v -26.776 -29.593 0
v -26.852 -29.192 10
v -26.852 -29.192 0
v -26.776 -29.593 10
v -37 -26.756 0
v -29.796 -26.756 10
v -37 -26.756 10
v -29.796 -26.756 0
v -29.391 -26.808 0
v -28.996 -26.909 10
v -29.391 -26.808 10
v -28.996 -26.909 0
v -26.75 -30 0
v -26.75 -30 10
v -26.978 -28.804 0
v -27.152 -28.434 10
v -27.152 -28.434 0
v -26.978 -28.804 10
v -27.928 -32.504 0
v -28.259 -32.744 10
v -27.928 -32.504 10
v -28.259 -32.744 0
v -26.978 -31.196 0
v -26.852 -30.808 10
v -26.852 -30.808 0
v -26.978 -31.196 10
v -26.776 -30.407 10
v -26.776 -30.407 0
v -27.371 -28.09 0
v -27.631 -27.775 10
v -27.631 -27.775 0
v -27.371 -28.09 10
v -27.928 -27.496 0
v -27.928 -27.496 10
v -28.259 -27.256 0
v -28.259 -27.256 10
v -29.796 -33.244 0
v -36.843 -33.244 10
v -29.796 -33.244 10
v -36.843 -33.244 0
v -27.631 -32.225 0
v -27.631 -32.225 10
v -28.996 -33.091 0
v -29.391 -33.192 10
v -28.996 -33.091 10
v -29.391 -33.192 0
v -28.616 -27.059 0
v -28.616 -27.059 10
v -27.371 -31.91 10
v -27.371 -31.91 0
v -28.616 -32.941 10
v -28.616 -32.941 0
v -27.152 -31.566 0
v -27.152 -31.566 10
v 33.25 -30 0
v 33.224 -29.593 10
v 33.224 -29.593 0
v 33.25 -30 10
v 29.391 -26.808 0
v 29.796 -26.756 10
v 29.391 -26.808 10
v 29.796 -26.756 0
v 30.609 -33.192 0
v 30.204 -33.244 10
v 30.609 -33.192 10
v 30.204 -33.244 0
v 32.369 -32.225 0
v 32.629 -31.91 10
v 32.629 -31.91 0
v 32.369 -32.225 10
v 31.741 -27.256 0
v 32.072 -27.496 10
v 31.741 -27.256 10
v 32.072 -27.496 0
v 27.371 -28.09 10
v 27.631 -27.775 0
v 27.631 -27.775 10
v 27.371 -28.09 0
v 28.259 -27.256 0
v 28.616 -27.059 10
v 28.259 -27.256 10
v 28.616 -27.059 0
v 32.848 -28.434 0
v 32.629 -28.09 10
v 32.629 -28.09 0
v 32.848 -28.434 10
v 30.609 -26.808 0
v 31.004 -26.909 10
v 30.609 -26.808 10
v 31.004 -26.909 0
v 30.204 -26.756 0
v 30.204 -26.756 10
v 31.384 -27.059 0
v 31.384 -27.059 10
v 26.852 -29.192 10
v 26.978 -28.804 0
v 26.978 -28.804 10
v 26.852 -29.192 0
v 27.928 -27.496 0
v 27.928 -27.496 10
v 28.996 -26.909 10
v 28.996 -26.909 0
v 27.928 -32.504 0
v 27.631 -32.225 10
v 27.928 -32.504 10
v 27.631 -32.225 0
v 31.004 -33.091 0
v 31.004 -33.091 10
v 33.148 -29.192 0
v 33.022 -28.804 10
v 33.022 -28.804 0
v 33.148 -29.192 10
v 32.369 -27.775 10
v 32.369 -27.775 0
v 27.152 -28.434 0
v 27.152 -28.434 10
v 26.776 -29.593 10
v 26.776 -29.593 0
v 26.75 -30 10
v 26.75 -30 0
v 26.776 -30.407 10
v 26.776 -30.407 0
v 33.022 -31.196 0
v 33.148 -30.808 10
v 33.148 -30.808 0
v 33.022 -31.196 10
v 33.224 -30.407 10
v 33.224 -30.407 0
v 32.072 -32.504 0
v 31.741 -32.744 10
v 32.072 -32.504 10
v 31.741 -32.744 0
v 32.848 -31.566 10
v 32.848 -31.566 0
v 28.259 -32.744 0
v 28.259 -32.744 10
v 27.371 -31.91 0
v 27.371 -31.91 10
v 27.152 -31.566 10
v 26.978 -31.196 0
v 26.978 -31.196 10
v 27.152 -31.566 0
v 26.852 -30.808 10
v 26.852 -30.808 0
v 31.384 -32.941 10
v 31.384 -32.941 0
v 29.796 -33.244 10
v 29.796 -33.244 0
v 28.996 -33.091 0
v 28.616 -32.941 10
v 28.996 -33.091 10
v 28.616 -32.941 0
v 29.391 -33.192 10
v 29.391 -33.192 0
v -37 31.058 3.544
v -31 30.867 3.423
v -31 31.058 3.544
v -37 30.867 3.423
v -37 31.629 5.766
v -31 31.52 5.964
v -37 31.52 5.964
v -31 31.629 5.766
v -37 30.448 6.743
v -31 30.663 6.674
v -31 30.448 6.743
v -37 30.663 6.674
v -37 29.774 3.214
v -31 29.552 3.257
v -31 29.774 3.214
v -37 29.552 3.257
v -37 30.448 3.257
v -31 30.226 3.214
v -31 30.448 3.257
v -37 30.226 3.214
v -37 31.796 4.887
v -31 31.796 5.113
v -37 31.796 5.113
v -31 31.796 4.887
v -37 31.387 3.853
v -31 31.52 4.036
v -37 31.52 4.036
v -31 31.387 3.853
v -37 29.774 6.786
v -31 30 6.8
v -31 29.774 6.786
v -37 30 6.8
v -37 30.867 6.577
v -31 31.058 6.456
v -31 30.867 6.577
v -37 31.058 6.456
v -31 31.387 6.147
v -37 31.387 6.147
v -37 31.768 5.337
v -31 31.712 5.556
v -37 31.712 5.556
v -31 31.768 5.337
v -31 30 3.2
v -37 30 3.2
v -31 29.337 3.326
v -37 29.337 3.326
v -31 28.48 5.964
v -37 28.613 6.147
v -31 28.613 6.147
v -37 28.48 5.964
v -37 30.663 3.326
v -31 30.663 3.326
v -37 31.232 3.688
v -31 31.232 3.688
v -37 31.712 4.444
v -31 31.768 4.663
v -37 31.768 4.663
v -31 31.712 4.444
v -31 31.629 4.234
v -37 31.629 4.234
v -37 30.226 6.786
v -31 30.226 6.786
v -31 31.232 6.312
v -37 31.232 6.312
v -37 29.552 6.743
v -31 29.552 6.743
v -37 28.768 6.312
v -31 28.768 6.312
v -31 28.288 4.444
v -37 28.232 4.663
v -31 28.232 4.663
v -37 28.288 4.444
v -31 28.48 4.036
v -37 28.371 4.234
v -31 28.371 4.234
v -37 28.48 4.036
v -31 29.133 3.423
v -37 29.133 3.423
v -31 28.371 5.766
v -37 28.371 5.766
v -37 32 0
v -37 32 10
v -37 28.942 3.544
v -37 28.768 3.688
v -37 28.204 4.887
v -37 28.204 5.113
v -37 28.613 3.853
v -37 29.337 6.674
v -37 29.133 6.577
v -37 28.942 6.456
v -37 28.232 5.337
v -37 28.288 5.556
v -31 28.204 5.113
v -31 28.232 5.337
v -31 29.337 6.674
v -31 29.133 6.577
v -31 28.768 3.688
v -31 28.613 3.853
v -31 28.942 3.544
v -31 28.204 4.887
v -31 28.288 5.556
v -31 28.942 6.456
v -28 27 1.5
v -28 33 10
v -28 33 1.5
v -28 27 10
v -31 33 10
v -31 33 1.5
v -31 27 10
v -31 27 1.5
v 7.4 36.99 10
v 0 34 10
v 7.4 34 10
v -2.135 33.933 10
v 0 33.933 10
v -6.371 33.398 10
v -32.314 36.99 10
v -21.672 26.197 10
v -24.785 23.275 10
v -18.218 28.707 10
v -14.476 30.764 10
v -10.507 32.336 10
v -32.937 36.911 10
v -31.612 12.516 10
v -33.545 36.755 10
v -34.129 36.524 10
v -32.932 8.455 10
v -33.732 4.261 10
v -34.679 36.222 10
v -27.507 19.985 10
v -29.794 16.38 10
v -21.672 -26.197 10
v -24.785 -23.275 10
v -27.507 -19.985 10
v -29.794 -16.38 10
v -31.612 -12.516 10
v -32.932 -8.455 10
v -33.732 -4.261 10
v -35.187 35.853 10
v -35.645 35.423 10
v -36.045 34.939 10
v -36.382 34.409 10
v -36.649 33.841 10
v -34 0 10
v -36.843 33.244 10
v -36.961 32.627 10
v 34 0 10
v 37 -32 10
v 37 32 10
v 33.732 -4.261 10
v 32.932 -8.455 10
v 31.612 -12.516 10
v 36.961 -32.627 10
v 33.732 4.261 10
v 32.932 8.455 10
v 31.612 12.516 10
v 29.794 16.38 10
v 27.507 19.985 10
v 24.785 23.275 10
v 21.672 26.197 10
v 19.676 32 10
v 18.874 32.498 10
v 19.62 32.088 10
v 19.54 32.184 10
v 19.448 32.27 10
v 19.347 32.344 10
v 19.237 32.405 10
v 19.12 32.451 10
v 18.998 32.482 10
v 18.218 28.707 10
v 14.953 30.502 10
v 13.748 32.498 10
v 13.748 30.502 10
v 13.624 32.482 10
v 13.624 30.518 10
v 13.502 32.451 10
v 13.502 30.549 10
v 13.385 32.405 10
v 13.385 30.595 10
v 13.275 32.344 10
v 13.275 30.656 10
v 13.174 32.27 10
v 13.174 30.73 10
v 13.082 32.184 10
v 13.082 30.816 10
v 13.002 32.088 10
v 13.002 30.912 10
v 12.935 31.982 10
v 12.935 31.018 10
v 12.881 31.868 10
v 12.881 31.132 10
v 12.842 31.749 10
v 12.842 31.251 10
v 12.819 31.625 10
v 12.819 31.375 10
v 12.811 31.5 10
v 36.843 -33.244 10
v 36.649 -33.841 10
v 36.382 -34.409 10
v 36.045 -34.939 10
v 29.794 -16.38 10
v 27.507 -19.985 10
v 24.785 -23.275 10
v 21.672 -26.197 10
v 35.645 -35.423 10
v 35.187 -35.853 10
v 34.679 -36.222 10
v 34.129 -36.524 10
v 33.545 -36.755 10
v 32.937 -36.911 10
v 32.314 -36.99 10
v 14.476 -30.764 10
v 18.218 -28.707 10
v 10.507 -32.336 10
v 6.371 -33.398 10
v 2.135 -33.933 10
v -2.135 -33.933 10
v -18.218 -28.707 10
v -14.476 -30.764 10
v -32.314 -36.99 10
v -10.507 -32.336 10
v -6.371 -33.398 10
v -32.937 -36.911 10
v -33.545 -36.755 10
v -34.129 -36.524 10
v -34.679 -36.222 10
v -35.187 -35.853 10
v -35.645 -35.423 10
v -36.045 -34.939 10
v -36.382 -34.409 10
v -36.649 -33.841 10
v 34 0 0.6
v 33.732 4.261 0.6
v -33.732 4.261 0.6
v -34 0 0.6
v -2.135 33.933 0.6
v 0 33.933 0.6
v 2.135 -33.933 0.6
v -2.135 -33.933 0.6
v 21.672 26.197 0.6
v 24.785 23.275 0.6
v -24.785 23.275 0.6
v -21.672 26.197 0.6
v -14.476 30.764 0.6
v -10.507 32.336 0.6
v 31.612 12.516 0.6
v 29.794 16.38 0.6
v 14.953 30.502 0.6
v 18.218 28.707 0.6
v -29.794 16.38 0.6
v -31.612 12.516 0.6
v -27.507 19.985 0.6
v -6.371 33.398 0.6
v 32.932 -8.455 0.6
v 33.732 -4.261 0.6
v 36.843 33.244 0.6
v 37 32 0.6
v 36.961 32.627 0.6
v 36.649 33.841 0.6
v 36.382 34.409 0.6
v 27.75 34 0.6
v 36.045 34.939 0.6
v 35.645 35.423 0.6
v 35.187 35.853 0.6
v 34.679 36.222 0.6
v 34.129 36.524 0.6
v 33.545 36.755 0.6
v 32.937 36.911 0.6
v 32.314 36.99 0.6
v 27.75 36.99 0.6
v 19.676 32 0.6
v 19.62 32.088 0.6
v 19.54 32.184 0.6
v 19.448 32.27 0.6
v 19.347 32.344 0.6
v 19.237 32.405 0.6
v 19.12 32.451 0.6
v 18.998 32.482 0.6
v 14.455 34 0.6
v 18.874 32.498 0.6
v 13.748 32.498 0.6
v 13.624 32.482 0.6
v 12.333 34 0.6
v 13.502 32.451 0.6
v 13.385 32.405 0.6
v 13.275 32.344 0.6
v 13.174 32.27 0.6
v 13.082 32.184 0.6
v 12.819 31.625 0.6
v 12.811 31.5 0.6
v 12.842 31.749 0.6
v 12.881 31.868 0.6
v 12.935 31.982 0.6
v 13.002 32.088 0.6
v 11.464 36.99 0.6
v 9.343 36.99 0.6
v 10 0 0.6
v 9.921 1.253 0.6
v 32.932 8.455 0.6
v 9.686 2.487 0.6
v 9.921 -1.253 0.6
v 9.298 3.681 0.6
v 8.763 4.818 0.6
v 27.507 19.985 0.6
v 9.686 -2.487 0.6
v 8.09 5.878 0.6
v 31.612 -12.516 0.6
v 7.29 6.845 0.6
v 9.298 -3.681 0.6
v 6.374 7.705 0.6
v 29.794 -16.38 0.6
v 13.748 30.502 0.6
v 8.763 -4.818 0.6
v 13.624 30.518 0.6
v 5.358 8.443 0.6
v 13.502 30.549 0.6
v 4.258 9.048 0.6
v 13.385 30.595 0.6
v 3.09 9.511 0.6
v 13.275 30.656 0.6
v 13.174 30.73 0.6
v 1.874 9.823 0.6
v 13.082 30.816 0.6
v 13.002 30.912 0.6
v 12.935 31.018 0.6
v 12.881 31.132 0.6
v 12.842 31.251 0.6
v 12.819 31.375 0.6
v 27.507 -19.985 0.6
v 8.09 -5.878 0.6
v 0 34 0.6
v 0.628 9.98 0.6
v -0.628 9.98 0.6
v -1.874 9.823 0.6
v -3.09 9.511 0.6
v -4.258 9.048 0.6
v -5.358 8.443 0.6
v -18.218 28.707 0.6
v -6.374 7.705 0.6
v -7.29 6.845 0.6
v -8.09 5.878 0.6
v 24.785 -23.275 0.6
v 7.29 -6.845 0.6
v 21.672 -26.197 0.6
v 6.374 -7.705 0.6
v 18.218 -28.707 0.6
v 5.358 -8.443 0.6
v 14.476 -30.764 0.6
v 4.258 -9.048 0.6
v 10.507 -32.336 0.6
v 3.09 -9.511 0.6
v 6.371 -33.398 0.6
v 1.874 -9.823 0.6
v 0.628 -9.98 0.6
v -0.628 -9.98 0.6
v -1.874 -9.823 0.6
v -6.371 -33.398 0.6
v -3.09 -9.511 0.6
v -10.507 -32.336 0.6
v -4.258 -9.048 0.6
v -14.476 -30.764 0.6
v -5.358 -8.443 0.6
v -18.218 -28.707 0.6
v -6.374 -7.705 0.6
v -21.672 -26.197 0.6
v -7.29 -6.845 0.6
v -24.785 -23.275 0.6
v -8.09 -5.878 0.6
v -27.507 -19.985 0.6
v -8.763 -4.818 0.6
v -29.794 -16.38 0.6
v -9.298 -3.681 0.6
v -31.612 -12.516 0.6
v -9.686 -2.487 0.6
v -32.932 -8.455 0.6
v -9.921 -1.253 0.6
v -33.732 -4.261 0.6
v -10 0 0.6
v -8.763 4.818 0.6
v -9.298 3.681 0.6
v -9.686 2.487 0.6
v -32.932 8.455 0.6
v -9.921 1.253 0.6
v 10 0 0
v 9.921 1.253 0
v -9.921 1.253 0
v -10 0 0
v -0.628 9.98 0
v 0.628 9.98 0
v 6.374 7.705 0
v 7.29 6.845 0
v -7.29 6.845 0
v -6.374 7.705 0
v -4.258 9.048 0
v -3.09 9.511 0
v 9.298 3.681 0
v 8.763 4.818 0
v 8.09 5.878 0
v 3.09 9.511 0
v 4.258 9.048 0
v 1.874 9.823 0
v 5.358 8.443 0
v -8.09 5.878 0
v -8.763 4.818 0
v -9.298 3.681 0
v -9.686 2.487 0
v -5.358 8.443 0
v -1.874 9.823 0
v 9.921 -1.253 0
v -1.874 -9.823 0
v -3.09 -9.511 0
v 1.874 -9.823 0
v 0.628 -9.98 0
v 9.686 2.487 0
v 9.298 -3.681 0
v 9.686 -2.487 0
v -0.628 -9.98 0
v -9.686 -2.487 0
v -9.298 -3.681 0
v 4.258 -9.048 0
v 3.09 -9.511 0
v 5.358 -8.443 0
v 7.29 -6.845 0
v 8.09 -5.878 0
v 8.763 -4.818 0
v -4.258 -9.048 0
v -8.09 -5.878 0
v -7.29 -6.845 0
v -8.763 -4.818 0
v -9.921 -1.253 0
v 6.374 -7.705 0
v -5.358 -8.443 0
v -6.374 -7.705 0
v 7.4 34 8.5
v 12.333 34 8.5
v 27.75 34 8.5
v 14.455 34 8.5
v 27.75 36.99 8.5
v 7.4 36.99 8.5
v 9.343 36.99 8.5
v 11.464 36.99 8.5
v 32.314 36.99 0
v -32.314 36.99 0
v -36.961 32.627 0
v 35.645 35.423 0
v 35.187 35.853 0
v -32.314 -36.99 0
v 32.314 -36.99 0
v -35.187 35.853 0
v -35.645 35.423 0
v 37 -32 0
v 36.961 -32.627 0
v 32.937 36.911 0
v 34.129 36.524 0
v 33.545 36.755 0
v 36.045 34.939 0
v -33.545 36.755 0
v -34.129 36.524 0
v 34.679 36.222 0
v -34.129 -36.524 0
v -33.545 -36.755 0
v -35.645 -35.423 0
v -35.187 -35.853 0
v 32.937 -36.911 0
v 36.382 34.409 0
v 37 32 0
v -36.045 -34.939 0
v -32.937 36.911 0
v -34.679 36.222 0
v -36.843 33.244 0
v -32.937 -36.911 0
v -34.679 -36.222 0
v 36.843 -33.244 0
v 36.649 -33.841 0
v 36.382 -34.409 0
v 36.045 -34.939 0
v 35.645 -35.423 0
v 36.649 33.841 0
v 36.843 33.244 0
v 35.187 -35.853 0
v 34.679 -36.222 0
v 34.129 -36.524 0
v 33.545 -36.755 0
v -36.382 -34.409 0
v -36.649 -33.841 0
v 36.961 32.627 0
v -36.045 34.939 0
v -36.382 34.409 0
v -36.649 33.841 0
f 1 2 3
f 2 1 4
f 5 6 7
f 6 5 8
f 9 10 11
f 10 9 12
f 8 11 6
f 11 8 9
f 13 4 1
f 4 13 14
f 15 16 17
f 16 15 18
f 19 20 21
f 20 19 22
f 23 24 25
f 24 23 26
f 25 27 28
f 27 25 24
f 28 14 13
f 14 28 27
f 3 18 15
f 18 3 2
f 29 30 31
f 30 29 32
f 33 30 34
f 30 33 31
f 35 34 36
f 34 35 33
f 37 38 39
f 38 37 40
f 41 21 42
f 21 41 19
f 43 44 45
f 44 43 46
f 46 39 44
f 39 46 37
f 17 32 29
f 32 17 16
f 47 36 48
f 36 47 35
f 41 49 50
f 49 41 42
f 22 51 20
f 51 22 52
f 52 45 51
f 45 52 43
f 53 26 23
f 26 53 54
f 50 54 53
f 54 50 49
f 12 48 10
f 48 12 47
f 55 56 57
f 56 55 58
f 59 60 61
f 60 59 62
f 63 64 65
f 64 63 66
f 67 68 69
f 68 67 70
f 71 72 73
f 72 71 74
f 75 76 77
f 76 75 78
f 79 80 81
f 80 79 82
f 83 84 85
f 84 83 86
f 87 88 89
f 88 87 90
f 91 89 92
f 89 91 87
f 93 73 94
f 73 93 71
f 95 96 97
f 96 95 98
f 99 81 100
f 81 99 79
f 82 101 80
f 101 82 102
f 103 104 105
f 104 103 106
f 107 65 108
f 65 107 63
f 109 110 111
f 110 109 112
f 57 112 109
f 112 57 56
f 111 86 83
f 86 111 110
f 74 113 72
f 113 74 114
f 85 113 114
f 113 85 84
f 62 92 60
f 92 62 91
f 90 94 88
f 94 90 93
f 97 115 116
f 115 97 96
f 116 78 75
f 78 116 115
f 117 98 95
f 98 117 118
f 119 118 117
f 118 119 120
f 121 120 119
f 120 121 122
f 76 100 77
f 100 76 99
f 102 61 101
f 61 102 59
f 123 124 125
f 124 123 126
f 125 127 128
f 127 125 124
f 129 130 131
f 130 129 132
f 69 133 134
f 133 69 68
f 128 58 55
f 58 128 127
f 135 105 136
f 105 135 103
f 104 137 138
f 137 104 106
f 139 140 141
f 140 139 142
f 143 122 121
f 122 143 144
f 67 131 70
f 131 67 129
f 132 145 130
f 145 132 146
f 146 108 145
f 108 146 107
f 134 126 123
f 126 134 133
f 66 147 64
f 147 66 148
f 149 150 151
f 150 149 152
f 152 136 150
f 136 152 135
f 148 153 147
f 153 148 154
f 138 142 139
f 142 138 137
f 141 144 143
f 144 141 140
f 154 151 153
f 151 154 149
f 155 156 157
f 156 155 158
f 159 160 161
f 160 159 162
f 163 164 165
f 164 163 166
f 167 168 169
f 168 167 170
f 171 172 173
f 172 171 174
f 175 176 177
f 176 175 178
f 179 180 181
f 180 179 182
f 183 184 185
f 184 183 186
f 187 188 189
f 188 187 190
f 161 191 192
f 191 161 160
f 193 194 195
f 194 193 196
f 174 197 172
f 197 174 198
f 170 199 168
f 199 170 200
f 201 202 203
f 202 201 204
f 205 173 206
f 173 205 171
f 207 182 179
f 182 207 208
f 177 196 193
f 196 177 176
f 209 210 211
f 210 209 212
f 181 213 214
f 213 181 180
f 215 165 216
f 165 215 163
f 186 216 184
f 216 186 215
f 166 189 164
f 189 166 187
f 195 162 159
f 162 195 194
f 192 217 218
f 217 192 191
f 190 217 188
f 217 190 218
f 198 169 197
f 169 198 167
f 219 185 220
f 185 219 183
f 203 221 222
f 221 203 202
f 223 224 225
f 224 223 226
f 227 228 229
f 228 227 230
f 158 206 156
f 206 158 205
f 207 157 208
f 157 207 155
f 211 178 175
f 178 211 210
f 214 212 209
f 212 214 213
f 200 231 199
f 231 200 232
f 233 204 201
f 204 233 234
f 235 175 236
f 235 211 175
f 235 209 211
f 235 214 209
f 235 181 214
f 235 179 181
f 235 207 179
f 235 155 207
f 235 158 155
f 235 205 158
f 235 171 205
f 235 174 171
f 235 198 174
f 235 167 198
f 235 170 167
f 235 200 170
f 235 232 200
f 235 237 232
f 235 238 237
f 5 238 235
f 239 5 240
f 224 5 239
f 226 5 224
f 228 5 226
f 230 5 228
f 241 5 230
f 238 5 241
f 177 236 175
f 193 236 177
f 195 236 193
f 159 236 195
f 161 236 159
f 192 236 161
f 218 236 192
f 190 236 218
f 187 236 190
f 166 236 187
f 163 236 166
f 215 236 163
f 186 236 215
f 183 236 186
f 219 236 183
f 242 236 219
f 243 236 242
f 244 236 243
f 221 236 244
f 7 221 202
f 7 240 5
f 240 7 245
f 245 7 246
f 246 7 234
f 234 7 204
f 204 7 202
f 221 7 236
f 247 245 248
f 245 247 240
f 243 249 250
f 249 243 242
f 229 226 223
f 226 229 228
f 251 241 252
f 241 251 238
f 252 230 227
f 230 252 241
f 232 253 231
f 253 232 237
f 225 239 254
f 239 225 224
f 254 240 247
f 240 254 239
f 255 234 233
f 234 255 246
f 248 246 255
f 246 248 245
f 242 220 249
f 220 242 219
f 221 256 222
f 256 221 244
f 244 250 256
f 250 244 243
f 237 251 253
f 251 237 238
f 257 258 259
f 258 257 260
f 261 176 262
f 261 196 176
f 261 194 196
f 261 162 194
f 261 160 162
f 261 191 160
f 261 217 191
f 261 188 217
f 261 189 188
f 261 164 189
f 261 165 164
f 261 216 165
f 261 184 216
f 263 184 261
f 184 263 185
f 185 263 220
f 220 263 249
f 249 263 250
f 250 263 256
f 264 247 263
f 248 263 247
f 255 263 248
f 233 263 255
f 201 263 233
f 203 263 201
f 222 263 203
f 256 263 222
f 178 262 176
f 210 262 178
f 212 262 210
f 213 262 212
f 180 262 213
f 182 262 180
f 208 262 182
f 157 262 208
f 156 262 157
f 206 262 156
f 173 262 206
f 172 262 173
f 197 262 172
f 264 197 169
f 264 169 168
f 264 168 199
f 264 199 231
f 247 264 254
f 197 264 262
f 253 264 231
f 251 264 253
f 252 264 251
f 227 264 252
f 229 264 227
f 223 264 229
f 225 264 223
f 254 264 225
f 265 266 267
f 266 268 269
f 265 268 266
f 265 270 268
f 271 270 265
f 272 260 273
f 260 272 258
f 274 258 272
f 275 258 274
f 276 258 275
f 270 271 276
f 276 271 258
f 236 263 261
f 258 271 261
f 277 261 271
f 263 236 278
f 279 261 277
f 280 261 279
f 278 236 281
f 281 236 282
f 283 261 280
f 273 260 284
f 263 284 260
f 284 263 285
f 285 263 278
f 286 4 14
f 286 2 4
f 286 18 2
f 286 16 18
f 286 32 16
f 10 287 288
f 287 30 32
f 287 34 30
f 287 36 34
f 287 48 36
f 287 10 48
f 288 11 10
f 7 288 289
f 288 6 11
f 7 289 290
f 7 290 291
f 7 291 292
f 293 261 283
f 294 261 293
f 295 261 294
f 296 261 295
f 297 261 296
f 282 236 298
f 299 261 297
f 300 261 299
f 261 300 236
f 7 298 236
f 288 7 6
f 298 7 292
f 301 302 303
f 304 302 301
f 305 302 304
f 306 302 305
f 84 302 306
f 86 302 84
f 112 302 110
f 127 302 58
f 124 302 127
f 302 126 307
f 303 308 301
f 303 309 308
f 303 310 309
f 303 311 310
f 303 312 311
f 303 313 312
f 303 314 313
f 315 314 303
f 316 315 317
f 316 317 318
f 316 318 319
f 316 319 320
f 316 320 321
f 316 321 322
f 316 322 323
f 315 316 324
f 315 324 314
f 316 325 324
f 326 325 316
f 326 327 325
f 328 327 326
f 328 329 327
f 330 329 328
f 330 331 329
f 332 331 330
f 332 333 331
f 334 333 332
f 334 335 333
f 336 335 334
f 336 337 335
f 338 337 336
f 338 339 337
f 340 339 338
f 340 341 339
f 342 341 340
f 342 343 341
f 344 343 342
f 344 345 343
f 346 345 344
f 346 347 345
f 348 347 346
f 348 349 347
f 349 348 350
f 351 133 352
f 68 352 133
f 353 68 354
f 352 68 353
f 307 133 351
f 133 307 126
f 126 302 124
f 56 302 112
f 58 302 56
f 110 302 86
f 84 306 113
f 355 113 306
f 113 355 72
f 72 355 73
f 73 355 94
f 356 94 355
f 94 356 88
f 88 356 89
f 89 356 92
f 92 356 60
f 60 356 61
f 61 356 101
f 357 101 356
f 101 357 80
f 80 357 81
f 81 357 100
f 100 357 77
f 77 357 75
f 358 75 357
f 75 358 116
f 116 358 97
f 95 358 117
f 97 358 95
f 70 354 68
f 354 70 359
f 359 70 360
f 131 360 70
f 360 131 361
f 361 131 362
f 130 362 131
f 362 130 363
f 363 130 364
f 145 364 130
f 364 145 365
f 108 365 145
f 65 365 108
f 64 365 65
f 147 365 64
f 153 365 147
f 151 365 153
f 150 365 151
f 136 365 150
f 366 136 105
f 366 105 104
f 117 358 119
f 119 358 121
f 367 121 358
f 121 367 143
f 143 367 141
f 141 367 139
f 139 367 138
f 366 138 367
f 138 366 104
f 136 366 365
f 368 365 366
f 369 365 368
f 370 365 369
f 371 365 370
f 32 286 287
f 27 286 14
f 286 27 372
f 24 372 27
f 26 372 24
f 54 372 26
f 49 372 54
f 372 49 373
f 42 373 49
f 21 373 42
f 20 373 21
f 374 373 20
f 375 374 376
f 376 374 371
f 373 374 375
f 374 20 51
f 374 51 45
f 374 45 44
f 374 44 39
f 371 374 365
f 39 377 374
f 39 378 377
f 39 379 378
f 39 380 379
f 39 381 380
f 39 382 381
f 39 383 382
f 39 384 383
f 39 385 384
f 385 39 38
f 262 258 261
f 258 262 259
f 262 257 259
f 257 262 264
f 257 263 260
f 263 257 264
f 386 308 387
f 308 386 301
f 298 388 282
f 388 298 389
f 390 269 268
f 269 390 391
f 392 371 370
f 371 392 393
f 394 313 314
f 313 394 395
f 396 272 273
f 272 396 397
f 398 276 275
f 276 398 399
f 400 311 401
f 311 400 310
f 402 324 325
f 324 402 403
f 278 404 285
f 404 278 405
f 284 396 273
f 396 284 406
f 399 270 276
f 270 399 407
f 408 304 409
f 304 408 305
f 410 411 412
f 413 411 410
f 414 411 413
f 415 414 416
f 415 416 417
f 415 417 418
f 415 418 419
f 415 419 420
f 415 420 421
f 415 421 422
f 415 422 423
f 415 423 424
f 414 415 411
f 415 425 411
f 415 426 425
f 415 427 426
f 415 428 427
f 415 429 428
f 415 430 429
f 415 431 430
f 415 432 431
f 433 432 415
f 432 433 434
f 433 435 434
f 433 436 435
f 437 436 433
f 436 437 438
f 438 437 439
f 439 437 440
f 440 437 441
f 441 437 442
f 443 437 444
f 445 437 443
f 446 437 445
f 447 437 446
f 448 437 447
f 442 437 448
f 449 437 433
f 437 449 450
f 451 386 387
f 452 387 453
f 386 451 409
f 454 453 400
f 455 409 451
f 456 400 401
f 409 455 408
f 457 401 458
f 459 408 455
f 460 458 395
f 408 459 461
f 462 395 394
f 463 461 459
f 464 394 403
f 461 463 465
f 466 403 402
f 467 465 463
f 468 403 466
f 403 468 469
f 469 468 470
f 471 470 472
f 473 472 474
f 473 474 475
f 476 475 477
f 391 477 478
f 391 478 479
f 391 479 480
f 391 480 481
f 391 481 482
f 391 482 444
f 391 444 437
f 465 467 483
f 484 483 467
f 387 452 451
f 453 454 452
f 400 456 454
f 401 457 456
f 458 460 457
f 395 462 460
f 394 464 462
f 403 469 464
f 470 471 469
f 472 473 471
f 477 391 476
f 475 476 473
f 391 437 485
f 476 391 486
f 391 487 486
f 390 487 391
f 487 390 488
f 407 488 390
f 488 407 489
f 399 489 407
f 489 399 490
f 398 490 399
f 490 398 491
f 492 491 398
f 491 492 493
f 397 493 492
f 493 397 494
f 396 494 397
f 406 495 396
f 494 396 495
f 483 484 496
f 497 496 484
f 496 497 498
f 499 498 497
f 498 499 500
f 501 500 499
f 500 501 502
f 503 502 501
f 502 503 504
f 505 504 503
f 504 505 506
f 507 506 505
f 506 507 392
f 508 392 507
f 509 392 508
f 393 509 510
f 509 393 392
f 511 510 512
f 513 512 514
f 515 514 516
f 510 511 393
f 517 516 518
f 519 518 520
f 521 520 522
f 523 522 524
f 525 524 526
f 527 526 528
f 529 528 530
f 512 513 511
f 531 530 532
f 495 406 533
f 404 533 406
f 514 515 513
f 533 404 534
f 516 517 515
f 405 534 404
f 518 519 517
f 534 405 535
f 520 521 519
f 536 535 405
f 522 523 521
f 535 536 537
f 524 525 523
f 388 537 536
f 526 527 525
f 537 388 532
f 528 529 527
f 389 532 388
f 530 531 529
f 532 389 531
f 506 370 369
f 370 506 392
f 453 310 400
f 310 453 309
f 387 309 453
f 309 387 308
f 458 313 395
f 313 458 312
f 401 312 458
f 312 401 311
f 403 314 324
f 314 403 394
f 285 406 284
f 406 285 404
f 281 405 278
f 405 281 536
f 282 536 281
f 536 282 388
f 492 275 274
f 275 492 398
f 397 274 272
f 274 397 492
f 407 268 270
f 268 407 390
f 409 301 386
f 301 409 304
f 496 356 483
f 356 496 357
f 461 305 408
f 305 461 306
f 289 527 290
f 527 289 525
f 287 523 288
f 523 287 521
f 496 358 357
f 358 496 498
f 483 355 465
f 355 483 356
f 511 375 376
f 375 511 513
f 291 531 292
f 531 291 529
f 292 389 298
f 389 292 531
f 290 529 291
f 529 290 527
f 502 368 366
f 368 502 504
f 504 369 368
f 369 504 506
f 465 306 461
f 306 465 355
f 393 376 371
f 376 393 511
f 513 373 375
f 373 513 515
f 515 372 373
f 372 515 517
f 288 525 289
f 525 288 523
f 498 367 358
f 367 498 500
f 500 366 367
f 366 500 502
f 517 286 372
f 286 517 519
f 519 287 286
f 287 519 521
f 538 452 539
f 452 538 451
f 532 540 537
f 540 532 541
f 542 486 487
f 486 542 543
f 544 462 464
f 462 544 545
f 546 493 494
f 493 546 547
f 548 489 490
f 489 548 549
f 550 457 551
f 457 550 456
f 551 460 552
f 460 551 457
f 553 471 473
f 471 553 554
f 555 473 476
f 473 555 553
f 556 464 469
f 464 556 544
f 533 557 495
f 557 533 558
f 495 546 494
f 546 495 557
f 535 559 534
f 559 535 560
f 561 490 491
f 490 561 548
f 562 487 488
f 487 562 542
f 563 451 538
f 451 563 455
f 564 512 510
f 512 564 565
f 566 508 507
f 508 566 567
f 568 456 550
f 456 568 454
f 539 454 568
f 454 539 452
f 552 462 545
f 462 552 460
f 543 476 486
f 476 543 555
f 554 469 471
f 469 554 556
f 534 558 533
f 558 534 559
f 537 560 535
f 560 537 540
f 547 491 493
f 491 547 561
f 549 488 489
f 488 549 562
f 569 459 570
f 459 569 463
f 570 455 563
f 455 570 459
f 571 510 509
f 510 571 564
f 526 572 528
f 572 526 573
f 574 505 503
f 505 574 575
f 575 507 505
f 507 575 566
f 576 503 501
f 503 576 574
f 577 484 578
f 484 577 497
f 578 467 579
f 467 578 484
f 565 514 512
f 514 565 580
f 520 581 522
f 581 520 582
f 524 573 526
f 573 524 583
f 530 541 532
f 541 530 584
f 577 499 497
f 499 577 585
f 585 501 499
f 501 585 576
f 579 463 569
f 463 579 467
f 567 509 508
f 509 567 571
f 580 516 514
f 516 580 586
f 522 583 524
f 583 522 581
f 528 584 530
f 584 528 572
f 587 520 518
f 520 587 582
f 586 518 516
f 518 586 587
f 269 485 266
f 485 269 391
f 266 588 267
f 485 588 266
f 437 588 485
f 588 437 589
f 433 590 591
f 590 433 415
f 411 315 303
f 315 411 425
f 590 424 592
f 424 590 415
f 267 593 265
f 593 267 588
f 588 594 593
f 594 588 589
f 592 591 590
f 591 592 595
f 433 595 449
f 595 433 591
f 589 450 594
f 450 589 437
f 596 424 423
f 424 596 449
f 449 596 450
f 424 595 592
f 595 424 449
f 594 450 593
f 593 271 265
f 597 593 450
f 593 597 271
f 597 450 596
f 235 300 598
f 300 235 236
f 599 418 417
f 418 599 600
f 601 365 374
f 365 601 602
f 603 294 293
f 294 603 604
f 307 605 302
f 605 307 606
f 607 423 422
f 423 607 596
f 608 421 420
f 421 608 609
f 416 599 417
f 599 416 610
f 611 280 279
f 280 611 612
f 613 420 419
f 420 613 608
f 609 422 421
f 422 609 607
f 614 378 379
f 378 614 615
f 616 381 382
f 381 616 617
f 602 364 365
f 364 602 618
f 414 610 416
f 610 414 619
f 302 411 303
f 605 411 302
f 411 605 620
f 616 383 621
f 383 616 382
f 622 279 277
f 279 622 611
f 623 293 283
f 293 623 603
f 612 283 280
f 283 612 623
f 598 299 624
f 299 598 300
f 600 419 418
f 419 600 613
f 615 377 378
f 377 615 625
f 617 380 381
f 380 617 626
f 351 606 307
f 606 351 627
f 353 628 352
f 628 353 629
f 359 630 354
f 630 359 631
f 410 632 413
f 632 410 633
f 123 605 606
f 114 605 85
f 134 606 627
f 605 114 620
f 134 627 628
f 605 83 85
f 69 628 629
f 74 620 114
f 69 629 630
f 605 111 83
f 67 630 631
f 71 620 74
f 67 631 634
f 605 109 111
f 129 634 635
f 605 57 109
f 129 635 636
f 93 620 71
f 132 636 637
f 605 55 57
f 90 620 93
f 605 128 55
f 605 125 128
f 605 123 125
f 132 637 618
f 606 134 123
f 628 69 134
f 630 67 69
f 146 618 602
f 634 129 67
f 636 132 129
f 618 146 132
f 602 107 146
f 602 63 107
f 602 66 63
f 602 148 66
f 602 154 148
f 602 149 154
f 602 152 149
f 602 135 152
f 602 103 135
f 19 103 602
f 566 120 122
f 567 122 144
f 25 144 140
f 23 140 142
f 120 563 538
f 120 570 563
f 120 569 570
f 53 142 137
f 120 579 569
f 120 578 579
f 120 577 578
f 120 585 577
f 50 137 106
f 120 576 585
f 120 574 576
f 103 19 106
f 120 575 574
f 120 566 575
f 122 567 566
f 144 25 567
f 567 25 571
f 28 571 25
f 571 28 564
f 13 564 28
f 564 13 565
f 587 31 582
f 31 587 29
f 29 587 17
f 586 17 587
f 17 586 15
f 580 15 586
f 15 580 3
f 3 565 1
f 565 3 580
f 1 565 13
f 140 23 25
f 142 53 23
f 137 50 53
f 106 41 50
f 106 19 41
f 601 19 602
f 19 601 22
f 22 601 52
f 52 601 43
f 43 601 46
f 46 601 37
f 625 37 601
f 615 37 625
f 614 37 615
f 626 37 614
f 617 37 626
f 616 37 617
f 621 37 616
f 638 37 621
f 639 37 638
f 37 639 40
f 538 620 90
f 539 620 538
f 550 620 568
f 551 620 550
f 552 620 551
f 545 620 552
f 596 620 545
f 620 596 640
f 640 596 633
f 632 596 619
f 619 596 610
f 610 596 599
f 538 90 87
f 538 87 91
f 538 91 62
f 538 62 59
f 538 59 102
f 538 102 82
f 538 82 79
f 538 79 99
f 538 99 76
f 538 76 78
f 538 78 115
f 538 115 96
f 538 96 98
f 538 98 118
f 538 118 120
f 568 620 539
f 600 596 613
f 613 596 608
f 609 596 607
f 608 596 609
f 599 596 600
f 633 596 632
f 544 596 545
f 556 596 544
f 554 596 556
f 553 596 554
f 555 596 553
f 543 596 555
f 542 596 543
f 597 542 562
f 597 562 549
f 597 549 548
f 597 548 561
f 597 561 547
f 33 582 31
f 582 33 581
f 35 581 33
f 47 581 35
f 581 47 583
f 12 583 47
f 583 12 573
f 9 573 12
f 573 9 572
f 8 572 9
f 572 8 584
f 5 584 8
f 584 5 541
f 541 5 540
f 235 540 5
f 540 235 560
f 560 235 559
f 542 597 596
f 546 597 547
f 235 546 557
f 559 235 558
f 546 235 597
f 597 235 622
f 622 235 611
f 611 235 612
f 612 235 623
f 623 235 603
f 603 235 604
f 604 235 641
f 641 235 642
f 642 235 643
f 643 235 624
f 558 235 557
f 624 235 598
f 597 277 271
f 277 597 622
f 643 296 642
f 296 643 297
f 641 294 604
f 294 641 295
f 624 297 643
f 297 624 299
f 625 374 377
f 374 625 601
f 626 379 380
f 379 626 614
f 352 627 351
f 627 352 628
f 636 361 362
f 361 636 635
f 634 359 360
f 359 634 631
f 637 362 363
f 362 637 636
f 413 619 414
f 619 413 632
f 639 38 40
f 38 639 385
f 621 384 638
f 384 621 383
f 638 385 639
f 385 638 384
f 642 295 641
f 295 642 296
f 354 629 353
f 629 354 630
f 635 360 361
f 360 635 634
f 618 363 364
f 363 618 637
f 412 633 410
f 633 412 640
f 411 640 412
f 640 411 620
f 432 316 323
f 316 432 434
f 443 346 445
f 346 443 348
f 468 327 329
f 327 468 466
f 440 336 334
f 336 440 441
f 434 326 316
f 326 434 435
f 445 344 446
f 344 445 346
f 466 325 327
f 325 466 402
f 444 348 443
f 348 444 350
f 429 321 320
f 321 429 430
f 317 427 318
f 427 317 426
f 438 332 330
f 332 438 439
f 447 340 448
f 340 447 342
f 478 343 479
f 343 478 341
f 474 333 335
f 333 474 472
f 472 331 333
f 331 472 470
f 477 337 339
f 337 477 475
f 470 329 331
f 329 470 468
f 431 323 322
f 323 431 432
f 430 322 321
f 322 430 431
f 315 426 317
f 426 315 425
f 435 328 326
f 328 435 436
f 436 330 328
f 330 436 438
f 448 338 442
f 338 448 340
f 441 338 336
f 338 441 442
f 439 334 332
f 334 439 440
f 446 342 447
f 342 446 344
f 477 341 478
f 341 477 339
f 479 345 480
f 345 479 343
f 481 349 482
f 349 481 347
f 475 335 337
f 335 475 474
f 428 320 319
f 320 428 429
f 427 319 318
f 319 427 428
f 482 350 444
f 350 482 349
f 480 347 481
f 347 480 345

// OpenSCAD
$fn = 50;


union() {
	difference() {
		union() {
			translate(v = [0, 0, 0]) {
				rotate(a = [0, 0, 0]) {
					hull() {
						translate(v = [-32.0000000000, 32.0000000000, 0]) {
							rotate(a = [0, 0, 0]) {
								translate(v = [0, 0, 0]) {
									rotate(a = [0, 0, 0]) {
										cylinder(h = 10, r = 5);
									}
								}
							}
						}
						translate(v = [32.0000000000, 32.0000000000, 0]) {
							rotate(a = [0, 0, 0]) {
								translate(v = [0, 0, 0]) {
									rotate(a = [0, 0, 0]) {
										cylinder(h = 10, r = 5);
									}
								}
							}
						}
						translate(v = [-32.0000000000, -32.0000000000, 0]) {
							rotate(a = [0, 0, 0]) {
								translate(v = [0, 0, 0]) {
									rotate(a = [0, 0, 0]) {
										cylinder(h = 10, r = 5);
									}
								}
							}
						}
						translate(v = [32.0000000000, -32.0000000000, 0]) {
							rotate(a = [0, 0, 0]) {
								translate(v = [0, 0, 0]) {
									rotate(a = [0, 0, 0]) {
										cylinder(h = 10, r = 5);
									}
								}
							}
						}
					}
				}
			}
		}
		union() {
			translate(v = [-37.5000000000, -30.0000000000, -125]) {
				rotate(a = [0, 0, 0]) {
					hull() {
						translate(v = [7.5000000000, 0, 0]) {
							rotate(a = [0, 0, 0]) {
								translate(v = [0, 0, 0]) {
									rotate(a = [0, 0, 0]) {
										cylinder(h = 250, r = 3.2500000000);
									}
								}
							}
						}
						translate(v = [-7.5000000000, 0, 0]) {
							rotate(a = [0, 0, 0]) {
								translate(v = [0, 0, 0]) {
									rotate(a = [0, 0, 0]) {
										cylinder(h = 250, r = 3.2500000000);
									}
								}
							}
						}
					}
				}
			}
			translate(v = [30.0000000000, -30.0000000000, -125.0000000000]) {
				rotate(a = [0, 0, 0]) {
					cylinder(h = 250, r = 3.2500000000);
				}
			}
			translate(v = [-37.0000000000, 30.0000000000, 5.0000000000]) {
				rotate(a = [0, 90, 0]) {
					cylinder(h = 9, r = 1.8000000000);
				}
			}
			translate(v = [-31.0000000000, 27.0000000000, 1.5000000000]) {
				rotate(a = [0, 0, 0]) {
					cube(size = [3, 6, 8.5000000000]);
				}
			}
			translate(v = [0, 0, 0.6000000000]) {
				rotate(a = [0, 0, 0]) {
					cylinder(h = 12.4000000000, r = 34.0000000000);
				}
			}
			translate(v = [0, 0, -5.0000000000]) {
				rotate(a = [0, 0, 0]) {
					cylinder(h = 10, r = 10.0000000000);
				}
			}
			translate(v = [0.0000000000, 32.0000000000, 0.6000000000]) {
				rotate(a = [0, 0, 0]) {
					cube(size = [37.0000000000, 2, 12.4000000000]);
				}
			}
			translate(v = [27.7500000000, 32.0000000000, 0.6000000000]) {
				rotate(a = [0, 0, 0]) {
					cube(size = [9.2500000000, 5, 12.4000000000]);
				}
			}
			translate(v = [7.4000000000, 32.0000000000, 8.5000000000]) {
				rotate(a = [0, 0, 0]) {
					cube(size = [29.6000000000, 5, 1.5000000000]);
				}
			}
			translate(v = [8.5833333333, 37.7500000000, 0.6000000000]) {
				rotate(a = [0, 0, -45]) {
					cube(size = [7.5000000000, 1.5000000000, 12.4000000000]);
				}
			}
			translate(v = [7.0610000000, 30.5000000000, 0.6000000000]) {
				rotate(a = [0, 0, 0]) {
					cube(size = [7.5000000000, 2, 9.4000000000]);
				}
			}
		}
	}
	union() {
		translate(v = [16.3110000000, 31.5000000000, 0]) {
			rotate(a = [0, 0, 0]) {
				hull() {
					translate(v = [2.5000000000, 0, 0]) {
						rotate(a = [0, 0, 0]) {
							translate(v = [0, 0, 0]) {
								rotate(a = [0, 0, 0]) {
									cylinder(h = 10, r = 1.0000000000);
								}
							}
						}
					}
					translate(v = [-2.5000000000, 0, 0]) {
						rotate(a = [0, 0, 0]) {
							translate(v = [0, 0, 0]) {
								rotate(a = [0, 0, 0]) {
									cylinder(h = 10, r = 1.0000000000);
								}
							}
						}
					}
				}
			}
		}
	}
}
